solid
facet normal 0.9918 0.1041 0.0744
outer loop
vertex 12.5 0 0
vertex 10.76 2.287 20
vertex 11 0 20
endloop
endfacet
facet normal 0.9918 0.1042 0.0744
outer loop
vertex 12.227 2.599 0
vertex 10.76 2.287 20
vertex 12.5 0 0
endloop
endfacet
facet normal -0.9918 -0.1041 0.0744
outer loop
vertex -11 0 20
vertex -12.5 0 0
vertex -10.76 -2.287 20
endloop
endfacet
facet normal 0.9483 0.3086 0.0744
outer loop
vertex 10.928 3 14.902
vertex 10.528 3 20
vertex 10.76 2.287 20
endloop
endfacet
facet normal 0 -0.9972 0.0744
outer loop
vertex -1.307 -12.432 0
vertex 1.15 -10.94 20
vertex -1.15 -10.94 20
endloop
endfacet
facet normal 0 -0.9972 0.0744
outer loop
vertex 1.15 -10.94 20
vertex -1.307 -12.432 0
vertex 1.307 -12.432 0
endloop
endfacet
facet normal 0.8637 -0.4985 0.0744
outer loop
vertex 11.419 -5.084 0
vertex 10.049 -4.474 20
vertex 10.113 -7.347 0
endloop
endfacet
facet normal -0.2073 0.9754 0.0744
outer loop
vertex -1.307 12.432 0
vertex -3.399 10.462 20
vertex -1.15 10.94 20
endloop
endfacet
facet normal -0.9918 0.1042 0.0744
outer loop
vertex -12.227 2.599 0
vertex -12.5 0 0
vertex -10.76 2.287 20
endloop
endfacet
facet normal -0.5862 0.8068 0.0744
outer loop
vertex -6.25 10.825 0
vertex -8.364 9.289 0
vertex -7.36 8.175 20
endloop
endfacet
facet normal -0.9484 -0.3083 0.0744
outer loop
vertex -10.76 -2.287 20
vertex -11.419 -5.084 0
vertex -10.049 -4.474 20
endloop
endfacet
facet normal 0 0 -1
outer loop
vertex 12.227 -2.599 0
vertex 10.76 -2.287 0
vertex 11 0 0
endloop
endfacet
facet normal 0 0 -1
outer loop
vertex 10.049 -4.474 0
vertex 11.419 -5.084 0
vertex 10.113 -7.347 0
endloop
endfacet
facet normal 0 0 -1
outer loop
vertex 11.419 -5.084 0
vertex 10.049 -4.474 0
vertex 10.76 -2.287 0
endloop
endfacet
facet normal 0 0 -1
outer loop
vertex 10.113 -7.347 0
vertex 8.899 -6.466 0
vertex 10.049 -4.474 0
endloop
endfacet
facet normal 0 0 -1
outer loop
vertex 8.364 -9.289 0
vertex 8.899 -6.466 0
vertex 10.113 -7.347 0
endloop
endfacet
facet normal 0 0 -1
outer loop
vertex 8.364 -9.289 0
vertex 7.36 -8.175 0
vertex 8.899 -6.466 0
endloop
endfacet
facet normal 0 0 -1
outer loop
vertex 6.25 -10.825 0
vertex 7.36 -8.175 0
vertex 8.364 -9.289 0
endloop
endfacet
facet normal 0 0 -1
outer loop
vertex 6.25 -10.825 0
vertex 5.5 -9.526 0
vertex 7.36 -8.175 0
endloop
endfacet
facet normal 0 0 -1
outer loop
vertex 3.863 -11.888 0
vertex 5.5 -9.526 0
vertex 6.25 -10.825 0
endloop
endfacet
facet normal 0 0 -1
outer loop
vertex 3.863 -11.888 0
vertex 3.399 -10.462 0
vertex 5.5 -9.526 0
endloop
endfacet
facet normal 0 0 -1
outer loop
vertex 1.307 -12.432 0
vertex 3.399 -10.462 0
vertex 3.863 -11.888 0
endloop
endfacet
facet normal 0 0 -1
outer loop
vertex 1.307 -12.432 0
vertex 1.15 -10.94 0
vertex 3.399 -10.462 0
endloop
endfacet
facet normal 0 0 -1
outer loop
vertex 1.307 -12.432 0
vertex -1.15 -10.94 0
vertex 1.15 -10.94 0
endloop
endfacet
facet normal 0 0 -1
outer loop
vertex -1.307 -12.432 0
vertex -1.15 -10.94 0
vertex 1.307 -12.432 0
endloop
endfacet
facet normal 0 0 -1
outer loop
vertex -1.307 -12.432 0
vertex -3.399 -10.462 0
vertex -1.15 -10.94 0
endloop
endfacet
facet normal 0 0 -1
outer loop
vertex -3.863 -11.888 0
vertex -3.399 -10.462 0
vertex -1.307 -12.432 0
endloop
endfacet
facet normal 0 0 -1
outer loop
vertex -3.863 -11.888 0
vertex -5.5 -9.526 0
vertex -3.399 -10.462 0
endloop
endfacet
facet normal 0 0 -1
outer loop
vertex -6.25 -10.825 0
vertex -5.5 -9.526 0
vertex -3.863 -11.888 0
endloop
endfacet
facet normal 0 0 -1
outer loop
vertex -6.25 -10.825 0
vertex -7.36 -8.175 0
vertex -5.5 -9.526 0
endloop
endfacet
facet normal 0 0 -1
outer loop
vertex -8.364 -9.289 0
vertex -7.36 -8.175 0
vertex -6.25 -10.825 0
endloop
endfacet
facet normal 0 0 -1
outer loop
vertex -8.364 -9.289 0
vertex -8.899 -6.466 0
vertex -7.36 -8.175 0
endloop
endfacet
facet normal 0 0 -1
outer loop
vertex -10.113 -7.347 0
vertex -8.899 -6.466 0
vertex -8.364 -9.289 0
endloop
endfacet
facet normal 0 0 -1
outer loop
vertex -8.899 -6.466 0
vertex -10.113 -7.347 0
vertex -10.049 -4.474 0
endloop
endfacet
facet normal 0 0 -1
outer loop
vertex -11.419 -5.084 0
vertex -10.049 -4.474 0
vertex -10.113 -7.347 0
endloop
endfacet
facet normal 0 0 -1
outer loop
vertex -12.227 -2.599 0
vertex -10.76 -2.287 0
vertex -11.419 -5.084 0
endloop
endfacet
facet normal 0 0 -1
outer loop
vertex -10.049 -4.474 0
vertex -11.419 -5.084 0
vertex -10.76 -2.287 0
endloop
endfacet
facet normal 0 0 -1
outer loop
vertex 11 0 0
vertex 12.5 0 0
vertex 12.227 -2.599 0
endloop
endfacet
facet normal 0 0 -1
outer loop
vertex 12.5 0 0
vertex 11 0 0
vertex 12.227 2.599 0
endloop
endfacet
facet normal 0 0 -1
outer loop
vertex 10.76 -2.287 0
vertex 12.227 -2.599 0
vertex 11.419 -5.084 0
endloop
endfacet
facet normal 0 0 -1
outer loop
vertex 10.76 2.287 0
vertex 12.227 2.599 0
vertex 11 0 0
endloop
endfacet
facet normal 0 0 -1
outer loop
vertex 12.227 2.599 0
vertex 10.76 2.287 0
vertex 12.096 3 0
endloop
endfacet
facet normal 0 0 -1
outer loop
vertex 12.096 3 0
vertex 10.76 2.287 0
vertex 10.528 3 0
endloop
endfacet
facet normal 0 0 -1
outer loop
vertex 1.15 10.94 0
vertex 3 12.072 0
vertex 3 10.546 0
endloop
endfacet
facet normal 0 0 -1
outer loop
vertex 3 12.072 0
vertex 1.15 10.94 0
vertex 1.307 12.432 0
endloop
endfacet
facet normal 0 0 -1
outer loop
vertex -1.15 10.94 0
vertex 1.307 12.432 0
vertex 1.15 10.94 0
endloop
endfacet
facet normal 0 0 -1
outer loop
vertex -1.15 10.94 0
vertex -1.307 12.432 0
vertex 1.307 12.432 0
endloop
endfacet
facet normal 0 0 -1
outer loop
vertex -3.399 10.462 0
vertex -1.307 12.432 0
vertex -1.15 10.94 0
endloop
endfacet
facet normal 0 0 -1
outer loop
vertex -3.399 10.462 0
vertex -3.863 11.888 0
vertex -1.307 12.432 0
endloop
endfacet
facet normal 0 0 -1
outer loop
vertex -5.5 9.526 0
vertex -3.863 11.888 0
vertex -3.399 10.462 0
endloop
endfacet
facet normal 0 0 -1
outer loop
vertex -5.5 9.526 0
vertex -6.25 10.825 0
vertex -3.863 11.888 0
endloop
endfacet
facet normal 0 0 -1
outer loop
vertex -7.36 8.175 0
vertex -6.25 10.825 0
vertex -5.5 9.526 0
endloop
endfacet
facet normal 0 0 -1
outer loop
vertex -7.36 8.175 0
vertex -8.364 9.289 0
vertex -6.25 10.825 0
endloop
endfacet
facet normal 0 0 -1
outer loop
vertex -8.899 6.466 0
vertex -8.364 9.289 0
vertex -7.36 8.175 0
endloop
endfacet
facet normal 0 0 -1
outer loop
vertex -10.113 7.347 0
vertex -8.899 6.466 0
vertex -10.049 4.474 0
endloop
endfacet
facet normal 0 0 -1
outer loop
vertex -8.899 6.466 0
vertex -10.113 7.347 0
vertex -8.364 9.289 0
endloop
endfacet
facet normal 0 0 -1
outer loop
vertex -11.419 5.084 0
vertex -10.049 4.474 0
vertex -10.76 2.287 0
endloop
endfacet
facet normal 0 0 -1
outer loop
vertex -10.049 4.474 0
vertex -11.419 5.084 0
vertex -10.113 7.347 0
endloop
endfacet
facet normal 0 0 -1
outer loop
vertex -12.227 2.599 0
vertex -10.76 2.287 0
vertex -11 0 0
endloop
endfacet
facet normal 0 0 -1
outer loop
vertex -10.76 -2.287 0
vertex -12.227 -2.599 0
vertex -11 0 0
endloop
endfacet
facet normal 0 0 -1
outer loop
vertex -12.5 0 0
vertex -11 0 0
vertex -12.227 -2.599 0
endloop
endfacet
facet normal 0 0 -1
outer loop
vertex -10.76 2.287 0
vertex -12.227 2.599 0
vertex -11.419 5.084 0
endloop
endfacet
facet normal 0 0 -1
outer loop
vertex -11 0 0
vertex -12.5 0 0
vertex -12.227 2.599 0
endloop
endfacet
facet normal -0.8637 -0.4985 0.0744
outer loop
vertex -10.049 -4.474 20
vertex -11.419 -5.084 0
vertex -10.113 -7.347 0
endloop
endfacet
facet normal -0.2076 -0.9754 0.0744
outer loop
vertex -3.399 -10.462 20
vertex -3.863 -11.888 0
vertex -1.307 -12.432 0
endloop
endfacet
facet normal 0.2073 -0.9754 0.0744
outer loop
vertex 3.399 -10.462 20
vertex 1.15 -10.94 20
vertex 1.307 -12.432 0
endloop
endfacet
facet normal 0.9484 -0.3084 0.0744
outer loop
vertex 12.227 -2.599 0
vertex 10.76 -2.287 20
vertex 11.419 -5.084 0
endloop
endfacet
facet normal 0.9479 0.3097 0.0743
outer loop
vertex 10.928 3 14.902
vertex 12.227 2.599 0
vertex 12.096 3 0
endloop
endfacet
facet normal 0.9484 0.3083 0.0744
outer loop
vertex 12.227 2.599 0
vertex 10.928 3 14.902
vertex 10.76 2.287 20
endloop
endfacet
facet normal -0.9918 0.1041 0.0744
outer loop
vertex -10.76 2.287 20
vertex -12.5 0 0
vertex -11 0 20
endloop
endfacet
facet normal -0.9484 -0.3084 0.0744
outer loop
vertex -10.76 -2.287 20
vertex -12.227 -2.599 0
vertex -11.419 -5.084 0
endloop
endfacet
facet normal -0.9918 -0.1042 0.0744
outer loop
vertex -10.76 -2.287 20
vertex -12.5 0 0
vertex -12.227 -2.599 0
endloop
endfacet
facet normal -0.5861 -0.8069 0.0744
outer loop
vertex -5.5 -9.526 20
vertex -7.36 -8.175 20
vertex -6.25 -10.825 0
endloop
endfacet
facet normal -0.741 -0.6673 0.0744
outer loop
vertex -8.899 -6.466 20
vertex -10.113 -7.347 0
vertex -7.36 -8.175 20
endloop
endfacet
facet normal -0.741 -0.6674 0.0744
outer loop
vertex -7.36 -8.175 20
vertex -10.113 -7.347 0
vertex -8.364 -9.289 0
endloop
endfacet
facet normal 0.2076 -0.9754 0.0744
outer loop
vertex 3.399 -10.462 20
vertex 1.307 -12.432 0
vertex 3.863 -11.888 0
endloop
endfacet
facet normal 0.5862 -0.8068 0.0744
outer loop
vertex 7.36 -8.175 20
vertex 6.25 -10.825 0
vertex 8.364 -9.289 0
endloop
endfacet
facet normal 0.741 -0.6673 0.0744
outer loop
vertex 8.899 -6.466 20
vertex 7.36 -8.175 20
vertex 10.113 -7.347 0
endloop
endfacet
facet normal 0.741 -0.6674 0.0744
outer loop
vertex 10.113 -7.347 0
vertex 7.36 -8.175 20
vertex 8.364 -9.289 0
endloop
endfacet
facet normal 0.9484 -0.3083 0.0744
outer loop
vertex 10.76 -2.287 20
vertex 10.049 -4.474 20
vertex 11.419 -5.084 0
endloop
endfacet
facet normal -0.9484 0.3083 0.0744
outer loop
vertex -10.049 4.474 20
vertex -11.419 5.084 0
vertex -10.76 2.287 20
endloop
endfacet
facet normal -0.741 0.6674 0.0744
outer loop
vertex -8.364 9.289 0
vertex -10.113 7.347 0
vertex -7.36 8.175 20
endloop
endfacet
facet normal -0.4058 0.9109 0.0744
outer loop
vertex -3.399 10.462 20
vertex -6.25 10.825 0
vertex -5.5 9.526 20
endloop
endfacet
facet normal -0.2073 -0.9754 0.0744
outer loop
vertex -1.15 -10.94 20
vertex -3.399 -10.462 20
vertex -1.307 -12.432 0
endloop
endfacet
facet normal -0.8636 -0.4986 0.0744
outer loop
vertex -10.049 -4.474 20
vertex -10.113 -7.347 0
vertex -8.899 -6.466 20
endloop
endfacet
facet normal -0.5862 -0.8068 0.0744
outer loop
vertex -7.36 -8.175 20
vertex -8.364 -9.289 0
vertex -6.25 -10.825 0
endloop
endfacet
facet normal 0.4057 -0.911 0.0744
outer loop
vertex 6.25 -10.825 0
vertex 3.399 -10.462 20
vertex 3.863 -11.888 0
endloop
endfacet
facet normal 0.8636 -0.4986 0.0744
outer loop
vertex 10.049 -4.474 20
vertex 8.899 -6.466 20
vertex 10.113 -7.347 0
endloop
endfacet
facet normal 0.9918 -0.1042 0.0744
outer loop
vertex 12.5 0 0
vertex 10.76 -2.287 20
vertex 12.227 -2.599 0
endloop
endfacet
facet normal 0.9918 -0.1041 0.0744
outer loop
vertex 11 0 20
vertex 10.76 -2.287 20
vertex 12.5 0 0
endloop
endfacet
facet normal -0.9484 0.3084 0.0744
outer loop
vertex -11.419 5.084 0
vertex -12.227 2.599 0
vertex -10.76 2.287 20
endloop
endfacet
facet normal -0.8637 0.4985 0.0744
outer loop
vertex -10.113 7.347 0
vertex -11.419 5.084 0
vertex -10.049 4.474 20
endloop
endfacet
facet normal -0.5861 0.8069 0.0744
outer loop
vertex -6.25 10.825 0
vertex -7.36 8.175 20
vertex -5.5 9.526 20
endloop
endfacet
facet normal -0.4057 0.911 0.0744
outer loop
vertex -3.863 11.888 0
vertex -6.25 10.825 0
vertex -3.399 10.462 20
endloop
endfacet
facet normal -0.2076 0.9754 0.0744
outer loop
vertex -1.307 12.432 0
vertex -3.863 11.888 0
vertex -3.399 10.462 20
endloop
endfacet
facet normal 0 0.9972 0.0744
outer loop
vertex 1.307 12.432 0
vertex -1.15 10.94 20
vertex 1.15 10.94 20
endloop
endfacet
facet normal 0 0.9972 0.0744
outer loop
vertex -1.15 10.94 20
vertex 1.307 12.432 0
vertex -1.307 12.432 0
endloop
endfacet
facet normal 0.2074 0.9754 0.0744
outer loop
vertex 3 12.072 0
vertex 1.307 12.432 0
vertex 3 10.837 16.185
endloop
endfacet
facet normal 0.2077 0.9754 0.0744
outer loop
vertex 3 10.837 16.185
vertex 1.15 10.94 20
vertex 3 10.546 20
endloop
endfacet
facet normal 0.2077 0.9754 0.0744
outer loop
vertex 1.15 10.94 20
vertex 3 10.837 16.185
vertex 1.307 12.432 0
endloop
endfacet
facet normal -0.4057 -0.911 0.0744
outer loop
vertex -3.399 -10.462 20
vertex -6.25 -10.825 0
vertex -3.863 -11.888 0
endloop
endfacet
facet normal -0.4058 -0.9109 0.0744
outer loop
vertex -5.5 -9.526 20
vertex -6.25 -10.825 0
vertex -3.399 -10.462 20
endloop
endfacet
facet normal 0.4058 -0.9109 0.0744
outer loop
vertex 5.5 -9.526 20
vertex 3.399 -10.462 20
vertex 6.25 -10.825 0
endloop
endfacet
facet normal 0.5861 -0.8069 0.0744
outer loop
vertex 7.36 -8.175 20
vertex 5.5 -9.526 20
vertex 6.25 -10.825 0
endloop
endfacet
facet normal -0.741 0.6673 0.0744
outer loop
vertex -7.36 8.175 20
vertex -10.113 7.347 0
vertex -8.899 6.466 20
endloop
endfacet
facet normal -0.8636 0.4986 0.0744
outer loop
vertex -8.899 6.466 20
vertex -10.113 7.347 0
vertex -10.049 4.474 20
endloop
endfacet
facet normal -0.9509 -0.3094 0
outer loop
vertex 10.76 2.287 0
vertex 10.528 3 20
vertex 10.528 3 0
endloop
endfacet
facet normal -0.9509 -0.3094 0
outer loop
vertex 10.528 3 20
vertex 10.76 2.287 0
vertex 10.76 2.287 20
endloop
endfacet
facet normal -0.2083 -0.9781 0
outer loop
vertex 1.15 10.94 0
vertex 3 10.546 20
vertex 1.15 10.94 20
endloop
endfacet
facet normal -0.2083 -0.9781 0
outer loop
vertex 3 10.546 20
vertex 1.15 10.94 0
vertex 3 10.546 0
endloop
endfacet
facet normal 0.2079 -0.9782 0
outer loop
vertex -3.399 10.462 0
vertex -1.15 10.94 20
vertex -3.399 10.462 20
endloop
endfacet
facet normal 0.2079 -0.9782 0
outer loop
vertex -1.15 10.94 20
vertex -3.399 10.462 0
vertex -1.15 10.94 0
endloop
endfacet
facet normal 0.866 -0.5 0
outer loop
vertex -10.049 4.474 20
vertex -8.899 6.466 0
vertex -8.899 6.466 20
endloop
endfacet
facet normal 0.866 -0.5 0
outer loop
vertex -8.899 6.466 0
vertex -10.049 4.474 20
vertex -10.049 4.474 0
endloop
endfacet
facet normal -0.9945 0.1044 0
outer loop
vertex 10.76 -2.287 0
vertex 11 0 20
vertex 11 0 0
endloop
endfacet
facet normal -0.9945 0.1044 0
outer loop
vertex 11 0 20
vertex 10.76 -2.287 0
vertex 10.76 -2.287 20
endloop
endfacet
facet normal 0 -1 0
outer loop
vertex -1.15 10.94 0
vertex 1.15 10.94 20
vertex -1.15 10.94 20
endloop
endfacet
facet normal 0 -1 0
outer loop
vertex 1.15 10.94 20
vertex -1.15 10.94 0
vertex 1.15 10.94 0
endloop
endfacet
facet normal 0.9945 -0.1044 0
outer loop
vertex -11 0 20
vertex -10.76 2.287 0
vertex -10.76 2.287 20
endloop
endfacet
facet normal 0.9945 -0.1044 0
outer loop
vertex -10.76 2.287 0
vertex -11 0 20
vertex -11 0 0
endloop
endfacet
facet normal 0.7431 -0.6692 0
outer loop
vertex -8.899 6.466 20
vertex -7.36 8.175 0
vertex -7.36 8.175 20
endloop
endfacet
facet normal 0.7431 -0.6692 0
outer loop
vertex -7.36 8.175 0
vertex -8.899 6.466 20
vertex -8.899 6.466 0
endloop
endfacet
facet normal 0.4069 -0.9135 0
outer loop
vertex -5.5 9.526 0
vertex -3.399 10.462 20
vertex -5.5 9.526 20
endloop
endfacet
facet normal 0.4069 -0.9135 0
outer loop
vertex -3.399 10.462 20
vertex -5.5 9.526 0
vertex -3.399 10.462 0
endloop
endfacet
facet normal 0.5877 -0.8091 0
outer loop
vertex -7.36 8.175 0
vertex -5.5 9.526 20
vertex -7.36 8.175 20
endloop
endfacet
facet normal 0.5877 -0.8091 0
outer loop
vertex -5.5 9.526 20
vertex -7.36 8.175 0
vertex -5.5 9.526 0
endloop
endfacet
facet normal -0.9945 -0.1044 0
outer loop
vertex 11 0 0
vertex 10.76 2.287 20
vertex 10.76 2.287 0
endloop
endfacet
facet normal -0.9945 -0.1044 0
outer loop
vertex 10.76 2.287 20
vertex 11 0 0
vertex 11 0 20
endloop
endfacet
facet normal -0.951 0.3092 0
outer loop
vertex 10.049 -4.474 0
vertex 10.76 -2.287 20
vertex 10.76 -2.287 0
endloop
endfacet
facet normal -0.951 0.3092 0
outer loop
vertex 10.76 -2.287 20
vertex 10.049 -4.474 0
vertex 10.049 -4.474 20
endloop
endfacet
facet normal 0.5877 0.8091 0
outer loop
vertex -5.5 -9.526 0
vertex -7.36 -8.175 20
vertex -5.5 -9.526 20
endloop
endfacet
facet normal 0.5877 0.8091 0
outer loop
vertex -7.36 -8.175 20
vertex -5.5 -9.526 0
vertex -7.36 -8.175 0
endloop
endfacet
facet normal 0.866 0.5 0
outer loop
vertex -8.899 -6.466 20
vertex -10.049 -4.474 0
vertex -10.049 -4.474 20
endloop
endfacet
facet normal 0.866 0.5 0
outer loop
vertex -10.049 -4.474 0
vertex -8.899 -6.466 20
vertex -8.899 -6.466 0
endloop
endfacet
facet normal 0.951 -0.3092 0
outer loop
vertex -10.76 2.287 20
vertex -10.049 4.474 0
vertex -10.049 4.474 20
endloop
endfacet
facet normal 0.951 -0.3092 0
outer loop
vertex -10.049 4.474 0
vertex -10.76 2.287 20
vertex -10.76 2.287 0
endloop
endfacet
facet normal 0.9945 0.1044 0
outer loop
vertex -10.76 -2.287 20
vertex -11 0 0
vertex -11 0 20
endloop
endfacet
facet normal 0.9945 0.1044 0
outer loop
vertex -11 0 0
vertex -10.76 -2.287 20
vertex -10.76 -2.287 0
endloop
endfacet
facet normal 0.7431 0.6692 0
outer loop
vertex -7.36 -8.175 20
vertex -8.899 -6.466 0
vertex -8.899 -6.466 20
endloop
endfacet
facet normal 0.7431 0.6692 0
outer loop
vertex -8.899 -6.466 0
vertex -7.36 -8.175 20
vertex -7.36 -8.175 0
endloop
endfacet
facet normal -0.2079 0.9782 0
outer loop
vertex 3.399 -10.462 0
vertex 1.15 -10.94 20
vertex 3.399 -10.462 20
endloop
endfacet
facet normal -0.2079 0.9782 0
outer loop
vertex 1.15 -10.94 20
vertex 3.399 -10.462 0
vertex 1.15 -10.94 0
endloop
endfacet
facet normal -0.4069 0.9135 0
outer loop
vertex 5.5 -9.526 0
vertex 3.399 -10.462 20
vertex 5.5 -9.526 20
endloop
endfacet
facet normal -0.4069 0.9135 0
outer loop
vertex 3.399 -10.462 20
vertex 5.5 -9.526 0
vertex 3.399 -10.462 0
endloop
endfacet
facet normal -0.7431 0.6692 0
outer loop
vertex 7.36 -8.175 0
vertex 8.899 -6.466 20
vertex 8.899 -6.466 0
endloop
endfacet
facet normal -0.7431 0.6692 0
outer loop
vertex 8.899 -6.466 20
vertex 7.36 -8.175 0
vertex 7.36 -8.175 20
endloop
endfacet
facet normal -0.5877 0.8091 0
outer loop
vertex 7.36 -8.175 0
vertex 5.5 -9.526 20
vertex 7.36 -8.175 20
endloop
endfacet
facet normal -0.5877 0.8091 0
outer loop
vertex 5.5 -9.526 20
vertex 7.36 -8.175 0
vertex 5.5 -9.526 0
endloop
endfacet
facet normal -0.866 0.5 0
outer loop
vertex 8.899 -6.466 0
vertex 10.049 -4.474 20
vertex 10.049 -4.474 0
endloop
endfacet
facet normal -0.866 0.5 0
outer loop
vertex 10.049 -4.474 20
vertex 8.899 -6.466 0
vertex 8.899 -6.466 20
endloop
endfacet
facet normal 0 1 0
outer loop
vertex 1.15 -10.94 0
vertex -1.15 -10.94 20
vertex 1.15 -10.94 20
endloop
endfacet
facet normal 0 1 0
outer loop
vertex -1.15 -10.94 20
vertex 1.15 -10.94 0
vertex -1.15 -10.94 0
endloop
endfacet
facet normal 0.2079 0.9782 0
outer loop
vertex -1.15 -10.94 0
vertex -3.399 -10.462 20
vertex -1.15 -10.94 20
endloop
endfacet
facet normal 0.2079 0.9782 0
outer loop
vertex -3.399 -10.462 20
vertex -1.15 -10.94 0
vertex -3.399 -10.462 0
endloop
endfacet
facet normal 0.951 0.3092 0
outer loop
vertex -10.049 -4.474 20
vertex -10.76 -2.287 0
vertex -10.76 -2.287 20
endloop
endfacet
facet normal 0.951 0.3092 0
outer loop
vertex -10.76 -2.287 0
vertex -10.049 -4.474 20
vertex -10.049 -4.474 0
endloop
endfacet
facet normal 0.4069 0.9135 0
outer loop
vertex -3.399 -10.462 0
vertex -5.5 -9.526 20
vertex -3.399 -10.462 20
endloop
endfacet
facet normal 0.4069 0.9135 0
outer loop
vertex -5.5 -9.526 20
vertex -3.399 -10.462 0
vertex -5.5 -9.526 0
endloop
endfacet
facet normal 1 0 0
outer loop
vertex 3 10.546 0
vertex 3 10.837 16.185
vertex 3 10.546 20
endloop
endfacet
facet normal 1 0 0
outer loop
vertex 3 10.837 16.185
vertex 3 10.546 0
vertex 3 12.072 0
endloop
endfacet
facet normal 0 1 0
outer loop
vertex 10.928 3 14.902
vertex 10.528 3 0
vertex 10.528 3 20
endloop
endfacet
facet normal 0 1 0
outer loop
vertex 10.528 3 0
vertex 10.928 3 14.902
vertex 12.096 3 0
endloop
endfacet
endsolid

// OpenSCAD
difference(){
    cylinder(r1=25/2,r2=22/2,h=20);
    translate([0,0,-5])cylinder(r=22/2,h=30);
    translate([3,3,-5])cube([20,20,30]);
}
